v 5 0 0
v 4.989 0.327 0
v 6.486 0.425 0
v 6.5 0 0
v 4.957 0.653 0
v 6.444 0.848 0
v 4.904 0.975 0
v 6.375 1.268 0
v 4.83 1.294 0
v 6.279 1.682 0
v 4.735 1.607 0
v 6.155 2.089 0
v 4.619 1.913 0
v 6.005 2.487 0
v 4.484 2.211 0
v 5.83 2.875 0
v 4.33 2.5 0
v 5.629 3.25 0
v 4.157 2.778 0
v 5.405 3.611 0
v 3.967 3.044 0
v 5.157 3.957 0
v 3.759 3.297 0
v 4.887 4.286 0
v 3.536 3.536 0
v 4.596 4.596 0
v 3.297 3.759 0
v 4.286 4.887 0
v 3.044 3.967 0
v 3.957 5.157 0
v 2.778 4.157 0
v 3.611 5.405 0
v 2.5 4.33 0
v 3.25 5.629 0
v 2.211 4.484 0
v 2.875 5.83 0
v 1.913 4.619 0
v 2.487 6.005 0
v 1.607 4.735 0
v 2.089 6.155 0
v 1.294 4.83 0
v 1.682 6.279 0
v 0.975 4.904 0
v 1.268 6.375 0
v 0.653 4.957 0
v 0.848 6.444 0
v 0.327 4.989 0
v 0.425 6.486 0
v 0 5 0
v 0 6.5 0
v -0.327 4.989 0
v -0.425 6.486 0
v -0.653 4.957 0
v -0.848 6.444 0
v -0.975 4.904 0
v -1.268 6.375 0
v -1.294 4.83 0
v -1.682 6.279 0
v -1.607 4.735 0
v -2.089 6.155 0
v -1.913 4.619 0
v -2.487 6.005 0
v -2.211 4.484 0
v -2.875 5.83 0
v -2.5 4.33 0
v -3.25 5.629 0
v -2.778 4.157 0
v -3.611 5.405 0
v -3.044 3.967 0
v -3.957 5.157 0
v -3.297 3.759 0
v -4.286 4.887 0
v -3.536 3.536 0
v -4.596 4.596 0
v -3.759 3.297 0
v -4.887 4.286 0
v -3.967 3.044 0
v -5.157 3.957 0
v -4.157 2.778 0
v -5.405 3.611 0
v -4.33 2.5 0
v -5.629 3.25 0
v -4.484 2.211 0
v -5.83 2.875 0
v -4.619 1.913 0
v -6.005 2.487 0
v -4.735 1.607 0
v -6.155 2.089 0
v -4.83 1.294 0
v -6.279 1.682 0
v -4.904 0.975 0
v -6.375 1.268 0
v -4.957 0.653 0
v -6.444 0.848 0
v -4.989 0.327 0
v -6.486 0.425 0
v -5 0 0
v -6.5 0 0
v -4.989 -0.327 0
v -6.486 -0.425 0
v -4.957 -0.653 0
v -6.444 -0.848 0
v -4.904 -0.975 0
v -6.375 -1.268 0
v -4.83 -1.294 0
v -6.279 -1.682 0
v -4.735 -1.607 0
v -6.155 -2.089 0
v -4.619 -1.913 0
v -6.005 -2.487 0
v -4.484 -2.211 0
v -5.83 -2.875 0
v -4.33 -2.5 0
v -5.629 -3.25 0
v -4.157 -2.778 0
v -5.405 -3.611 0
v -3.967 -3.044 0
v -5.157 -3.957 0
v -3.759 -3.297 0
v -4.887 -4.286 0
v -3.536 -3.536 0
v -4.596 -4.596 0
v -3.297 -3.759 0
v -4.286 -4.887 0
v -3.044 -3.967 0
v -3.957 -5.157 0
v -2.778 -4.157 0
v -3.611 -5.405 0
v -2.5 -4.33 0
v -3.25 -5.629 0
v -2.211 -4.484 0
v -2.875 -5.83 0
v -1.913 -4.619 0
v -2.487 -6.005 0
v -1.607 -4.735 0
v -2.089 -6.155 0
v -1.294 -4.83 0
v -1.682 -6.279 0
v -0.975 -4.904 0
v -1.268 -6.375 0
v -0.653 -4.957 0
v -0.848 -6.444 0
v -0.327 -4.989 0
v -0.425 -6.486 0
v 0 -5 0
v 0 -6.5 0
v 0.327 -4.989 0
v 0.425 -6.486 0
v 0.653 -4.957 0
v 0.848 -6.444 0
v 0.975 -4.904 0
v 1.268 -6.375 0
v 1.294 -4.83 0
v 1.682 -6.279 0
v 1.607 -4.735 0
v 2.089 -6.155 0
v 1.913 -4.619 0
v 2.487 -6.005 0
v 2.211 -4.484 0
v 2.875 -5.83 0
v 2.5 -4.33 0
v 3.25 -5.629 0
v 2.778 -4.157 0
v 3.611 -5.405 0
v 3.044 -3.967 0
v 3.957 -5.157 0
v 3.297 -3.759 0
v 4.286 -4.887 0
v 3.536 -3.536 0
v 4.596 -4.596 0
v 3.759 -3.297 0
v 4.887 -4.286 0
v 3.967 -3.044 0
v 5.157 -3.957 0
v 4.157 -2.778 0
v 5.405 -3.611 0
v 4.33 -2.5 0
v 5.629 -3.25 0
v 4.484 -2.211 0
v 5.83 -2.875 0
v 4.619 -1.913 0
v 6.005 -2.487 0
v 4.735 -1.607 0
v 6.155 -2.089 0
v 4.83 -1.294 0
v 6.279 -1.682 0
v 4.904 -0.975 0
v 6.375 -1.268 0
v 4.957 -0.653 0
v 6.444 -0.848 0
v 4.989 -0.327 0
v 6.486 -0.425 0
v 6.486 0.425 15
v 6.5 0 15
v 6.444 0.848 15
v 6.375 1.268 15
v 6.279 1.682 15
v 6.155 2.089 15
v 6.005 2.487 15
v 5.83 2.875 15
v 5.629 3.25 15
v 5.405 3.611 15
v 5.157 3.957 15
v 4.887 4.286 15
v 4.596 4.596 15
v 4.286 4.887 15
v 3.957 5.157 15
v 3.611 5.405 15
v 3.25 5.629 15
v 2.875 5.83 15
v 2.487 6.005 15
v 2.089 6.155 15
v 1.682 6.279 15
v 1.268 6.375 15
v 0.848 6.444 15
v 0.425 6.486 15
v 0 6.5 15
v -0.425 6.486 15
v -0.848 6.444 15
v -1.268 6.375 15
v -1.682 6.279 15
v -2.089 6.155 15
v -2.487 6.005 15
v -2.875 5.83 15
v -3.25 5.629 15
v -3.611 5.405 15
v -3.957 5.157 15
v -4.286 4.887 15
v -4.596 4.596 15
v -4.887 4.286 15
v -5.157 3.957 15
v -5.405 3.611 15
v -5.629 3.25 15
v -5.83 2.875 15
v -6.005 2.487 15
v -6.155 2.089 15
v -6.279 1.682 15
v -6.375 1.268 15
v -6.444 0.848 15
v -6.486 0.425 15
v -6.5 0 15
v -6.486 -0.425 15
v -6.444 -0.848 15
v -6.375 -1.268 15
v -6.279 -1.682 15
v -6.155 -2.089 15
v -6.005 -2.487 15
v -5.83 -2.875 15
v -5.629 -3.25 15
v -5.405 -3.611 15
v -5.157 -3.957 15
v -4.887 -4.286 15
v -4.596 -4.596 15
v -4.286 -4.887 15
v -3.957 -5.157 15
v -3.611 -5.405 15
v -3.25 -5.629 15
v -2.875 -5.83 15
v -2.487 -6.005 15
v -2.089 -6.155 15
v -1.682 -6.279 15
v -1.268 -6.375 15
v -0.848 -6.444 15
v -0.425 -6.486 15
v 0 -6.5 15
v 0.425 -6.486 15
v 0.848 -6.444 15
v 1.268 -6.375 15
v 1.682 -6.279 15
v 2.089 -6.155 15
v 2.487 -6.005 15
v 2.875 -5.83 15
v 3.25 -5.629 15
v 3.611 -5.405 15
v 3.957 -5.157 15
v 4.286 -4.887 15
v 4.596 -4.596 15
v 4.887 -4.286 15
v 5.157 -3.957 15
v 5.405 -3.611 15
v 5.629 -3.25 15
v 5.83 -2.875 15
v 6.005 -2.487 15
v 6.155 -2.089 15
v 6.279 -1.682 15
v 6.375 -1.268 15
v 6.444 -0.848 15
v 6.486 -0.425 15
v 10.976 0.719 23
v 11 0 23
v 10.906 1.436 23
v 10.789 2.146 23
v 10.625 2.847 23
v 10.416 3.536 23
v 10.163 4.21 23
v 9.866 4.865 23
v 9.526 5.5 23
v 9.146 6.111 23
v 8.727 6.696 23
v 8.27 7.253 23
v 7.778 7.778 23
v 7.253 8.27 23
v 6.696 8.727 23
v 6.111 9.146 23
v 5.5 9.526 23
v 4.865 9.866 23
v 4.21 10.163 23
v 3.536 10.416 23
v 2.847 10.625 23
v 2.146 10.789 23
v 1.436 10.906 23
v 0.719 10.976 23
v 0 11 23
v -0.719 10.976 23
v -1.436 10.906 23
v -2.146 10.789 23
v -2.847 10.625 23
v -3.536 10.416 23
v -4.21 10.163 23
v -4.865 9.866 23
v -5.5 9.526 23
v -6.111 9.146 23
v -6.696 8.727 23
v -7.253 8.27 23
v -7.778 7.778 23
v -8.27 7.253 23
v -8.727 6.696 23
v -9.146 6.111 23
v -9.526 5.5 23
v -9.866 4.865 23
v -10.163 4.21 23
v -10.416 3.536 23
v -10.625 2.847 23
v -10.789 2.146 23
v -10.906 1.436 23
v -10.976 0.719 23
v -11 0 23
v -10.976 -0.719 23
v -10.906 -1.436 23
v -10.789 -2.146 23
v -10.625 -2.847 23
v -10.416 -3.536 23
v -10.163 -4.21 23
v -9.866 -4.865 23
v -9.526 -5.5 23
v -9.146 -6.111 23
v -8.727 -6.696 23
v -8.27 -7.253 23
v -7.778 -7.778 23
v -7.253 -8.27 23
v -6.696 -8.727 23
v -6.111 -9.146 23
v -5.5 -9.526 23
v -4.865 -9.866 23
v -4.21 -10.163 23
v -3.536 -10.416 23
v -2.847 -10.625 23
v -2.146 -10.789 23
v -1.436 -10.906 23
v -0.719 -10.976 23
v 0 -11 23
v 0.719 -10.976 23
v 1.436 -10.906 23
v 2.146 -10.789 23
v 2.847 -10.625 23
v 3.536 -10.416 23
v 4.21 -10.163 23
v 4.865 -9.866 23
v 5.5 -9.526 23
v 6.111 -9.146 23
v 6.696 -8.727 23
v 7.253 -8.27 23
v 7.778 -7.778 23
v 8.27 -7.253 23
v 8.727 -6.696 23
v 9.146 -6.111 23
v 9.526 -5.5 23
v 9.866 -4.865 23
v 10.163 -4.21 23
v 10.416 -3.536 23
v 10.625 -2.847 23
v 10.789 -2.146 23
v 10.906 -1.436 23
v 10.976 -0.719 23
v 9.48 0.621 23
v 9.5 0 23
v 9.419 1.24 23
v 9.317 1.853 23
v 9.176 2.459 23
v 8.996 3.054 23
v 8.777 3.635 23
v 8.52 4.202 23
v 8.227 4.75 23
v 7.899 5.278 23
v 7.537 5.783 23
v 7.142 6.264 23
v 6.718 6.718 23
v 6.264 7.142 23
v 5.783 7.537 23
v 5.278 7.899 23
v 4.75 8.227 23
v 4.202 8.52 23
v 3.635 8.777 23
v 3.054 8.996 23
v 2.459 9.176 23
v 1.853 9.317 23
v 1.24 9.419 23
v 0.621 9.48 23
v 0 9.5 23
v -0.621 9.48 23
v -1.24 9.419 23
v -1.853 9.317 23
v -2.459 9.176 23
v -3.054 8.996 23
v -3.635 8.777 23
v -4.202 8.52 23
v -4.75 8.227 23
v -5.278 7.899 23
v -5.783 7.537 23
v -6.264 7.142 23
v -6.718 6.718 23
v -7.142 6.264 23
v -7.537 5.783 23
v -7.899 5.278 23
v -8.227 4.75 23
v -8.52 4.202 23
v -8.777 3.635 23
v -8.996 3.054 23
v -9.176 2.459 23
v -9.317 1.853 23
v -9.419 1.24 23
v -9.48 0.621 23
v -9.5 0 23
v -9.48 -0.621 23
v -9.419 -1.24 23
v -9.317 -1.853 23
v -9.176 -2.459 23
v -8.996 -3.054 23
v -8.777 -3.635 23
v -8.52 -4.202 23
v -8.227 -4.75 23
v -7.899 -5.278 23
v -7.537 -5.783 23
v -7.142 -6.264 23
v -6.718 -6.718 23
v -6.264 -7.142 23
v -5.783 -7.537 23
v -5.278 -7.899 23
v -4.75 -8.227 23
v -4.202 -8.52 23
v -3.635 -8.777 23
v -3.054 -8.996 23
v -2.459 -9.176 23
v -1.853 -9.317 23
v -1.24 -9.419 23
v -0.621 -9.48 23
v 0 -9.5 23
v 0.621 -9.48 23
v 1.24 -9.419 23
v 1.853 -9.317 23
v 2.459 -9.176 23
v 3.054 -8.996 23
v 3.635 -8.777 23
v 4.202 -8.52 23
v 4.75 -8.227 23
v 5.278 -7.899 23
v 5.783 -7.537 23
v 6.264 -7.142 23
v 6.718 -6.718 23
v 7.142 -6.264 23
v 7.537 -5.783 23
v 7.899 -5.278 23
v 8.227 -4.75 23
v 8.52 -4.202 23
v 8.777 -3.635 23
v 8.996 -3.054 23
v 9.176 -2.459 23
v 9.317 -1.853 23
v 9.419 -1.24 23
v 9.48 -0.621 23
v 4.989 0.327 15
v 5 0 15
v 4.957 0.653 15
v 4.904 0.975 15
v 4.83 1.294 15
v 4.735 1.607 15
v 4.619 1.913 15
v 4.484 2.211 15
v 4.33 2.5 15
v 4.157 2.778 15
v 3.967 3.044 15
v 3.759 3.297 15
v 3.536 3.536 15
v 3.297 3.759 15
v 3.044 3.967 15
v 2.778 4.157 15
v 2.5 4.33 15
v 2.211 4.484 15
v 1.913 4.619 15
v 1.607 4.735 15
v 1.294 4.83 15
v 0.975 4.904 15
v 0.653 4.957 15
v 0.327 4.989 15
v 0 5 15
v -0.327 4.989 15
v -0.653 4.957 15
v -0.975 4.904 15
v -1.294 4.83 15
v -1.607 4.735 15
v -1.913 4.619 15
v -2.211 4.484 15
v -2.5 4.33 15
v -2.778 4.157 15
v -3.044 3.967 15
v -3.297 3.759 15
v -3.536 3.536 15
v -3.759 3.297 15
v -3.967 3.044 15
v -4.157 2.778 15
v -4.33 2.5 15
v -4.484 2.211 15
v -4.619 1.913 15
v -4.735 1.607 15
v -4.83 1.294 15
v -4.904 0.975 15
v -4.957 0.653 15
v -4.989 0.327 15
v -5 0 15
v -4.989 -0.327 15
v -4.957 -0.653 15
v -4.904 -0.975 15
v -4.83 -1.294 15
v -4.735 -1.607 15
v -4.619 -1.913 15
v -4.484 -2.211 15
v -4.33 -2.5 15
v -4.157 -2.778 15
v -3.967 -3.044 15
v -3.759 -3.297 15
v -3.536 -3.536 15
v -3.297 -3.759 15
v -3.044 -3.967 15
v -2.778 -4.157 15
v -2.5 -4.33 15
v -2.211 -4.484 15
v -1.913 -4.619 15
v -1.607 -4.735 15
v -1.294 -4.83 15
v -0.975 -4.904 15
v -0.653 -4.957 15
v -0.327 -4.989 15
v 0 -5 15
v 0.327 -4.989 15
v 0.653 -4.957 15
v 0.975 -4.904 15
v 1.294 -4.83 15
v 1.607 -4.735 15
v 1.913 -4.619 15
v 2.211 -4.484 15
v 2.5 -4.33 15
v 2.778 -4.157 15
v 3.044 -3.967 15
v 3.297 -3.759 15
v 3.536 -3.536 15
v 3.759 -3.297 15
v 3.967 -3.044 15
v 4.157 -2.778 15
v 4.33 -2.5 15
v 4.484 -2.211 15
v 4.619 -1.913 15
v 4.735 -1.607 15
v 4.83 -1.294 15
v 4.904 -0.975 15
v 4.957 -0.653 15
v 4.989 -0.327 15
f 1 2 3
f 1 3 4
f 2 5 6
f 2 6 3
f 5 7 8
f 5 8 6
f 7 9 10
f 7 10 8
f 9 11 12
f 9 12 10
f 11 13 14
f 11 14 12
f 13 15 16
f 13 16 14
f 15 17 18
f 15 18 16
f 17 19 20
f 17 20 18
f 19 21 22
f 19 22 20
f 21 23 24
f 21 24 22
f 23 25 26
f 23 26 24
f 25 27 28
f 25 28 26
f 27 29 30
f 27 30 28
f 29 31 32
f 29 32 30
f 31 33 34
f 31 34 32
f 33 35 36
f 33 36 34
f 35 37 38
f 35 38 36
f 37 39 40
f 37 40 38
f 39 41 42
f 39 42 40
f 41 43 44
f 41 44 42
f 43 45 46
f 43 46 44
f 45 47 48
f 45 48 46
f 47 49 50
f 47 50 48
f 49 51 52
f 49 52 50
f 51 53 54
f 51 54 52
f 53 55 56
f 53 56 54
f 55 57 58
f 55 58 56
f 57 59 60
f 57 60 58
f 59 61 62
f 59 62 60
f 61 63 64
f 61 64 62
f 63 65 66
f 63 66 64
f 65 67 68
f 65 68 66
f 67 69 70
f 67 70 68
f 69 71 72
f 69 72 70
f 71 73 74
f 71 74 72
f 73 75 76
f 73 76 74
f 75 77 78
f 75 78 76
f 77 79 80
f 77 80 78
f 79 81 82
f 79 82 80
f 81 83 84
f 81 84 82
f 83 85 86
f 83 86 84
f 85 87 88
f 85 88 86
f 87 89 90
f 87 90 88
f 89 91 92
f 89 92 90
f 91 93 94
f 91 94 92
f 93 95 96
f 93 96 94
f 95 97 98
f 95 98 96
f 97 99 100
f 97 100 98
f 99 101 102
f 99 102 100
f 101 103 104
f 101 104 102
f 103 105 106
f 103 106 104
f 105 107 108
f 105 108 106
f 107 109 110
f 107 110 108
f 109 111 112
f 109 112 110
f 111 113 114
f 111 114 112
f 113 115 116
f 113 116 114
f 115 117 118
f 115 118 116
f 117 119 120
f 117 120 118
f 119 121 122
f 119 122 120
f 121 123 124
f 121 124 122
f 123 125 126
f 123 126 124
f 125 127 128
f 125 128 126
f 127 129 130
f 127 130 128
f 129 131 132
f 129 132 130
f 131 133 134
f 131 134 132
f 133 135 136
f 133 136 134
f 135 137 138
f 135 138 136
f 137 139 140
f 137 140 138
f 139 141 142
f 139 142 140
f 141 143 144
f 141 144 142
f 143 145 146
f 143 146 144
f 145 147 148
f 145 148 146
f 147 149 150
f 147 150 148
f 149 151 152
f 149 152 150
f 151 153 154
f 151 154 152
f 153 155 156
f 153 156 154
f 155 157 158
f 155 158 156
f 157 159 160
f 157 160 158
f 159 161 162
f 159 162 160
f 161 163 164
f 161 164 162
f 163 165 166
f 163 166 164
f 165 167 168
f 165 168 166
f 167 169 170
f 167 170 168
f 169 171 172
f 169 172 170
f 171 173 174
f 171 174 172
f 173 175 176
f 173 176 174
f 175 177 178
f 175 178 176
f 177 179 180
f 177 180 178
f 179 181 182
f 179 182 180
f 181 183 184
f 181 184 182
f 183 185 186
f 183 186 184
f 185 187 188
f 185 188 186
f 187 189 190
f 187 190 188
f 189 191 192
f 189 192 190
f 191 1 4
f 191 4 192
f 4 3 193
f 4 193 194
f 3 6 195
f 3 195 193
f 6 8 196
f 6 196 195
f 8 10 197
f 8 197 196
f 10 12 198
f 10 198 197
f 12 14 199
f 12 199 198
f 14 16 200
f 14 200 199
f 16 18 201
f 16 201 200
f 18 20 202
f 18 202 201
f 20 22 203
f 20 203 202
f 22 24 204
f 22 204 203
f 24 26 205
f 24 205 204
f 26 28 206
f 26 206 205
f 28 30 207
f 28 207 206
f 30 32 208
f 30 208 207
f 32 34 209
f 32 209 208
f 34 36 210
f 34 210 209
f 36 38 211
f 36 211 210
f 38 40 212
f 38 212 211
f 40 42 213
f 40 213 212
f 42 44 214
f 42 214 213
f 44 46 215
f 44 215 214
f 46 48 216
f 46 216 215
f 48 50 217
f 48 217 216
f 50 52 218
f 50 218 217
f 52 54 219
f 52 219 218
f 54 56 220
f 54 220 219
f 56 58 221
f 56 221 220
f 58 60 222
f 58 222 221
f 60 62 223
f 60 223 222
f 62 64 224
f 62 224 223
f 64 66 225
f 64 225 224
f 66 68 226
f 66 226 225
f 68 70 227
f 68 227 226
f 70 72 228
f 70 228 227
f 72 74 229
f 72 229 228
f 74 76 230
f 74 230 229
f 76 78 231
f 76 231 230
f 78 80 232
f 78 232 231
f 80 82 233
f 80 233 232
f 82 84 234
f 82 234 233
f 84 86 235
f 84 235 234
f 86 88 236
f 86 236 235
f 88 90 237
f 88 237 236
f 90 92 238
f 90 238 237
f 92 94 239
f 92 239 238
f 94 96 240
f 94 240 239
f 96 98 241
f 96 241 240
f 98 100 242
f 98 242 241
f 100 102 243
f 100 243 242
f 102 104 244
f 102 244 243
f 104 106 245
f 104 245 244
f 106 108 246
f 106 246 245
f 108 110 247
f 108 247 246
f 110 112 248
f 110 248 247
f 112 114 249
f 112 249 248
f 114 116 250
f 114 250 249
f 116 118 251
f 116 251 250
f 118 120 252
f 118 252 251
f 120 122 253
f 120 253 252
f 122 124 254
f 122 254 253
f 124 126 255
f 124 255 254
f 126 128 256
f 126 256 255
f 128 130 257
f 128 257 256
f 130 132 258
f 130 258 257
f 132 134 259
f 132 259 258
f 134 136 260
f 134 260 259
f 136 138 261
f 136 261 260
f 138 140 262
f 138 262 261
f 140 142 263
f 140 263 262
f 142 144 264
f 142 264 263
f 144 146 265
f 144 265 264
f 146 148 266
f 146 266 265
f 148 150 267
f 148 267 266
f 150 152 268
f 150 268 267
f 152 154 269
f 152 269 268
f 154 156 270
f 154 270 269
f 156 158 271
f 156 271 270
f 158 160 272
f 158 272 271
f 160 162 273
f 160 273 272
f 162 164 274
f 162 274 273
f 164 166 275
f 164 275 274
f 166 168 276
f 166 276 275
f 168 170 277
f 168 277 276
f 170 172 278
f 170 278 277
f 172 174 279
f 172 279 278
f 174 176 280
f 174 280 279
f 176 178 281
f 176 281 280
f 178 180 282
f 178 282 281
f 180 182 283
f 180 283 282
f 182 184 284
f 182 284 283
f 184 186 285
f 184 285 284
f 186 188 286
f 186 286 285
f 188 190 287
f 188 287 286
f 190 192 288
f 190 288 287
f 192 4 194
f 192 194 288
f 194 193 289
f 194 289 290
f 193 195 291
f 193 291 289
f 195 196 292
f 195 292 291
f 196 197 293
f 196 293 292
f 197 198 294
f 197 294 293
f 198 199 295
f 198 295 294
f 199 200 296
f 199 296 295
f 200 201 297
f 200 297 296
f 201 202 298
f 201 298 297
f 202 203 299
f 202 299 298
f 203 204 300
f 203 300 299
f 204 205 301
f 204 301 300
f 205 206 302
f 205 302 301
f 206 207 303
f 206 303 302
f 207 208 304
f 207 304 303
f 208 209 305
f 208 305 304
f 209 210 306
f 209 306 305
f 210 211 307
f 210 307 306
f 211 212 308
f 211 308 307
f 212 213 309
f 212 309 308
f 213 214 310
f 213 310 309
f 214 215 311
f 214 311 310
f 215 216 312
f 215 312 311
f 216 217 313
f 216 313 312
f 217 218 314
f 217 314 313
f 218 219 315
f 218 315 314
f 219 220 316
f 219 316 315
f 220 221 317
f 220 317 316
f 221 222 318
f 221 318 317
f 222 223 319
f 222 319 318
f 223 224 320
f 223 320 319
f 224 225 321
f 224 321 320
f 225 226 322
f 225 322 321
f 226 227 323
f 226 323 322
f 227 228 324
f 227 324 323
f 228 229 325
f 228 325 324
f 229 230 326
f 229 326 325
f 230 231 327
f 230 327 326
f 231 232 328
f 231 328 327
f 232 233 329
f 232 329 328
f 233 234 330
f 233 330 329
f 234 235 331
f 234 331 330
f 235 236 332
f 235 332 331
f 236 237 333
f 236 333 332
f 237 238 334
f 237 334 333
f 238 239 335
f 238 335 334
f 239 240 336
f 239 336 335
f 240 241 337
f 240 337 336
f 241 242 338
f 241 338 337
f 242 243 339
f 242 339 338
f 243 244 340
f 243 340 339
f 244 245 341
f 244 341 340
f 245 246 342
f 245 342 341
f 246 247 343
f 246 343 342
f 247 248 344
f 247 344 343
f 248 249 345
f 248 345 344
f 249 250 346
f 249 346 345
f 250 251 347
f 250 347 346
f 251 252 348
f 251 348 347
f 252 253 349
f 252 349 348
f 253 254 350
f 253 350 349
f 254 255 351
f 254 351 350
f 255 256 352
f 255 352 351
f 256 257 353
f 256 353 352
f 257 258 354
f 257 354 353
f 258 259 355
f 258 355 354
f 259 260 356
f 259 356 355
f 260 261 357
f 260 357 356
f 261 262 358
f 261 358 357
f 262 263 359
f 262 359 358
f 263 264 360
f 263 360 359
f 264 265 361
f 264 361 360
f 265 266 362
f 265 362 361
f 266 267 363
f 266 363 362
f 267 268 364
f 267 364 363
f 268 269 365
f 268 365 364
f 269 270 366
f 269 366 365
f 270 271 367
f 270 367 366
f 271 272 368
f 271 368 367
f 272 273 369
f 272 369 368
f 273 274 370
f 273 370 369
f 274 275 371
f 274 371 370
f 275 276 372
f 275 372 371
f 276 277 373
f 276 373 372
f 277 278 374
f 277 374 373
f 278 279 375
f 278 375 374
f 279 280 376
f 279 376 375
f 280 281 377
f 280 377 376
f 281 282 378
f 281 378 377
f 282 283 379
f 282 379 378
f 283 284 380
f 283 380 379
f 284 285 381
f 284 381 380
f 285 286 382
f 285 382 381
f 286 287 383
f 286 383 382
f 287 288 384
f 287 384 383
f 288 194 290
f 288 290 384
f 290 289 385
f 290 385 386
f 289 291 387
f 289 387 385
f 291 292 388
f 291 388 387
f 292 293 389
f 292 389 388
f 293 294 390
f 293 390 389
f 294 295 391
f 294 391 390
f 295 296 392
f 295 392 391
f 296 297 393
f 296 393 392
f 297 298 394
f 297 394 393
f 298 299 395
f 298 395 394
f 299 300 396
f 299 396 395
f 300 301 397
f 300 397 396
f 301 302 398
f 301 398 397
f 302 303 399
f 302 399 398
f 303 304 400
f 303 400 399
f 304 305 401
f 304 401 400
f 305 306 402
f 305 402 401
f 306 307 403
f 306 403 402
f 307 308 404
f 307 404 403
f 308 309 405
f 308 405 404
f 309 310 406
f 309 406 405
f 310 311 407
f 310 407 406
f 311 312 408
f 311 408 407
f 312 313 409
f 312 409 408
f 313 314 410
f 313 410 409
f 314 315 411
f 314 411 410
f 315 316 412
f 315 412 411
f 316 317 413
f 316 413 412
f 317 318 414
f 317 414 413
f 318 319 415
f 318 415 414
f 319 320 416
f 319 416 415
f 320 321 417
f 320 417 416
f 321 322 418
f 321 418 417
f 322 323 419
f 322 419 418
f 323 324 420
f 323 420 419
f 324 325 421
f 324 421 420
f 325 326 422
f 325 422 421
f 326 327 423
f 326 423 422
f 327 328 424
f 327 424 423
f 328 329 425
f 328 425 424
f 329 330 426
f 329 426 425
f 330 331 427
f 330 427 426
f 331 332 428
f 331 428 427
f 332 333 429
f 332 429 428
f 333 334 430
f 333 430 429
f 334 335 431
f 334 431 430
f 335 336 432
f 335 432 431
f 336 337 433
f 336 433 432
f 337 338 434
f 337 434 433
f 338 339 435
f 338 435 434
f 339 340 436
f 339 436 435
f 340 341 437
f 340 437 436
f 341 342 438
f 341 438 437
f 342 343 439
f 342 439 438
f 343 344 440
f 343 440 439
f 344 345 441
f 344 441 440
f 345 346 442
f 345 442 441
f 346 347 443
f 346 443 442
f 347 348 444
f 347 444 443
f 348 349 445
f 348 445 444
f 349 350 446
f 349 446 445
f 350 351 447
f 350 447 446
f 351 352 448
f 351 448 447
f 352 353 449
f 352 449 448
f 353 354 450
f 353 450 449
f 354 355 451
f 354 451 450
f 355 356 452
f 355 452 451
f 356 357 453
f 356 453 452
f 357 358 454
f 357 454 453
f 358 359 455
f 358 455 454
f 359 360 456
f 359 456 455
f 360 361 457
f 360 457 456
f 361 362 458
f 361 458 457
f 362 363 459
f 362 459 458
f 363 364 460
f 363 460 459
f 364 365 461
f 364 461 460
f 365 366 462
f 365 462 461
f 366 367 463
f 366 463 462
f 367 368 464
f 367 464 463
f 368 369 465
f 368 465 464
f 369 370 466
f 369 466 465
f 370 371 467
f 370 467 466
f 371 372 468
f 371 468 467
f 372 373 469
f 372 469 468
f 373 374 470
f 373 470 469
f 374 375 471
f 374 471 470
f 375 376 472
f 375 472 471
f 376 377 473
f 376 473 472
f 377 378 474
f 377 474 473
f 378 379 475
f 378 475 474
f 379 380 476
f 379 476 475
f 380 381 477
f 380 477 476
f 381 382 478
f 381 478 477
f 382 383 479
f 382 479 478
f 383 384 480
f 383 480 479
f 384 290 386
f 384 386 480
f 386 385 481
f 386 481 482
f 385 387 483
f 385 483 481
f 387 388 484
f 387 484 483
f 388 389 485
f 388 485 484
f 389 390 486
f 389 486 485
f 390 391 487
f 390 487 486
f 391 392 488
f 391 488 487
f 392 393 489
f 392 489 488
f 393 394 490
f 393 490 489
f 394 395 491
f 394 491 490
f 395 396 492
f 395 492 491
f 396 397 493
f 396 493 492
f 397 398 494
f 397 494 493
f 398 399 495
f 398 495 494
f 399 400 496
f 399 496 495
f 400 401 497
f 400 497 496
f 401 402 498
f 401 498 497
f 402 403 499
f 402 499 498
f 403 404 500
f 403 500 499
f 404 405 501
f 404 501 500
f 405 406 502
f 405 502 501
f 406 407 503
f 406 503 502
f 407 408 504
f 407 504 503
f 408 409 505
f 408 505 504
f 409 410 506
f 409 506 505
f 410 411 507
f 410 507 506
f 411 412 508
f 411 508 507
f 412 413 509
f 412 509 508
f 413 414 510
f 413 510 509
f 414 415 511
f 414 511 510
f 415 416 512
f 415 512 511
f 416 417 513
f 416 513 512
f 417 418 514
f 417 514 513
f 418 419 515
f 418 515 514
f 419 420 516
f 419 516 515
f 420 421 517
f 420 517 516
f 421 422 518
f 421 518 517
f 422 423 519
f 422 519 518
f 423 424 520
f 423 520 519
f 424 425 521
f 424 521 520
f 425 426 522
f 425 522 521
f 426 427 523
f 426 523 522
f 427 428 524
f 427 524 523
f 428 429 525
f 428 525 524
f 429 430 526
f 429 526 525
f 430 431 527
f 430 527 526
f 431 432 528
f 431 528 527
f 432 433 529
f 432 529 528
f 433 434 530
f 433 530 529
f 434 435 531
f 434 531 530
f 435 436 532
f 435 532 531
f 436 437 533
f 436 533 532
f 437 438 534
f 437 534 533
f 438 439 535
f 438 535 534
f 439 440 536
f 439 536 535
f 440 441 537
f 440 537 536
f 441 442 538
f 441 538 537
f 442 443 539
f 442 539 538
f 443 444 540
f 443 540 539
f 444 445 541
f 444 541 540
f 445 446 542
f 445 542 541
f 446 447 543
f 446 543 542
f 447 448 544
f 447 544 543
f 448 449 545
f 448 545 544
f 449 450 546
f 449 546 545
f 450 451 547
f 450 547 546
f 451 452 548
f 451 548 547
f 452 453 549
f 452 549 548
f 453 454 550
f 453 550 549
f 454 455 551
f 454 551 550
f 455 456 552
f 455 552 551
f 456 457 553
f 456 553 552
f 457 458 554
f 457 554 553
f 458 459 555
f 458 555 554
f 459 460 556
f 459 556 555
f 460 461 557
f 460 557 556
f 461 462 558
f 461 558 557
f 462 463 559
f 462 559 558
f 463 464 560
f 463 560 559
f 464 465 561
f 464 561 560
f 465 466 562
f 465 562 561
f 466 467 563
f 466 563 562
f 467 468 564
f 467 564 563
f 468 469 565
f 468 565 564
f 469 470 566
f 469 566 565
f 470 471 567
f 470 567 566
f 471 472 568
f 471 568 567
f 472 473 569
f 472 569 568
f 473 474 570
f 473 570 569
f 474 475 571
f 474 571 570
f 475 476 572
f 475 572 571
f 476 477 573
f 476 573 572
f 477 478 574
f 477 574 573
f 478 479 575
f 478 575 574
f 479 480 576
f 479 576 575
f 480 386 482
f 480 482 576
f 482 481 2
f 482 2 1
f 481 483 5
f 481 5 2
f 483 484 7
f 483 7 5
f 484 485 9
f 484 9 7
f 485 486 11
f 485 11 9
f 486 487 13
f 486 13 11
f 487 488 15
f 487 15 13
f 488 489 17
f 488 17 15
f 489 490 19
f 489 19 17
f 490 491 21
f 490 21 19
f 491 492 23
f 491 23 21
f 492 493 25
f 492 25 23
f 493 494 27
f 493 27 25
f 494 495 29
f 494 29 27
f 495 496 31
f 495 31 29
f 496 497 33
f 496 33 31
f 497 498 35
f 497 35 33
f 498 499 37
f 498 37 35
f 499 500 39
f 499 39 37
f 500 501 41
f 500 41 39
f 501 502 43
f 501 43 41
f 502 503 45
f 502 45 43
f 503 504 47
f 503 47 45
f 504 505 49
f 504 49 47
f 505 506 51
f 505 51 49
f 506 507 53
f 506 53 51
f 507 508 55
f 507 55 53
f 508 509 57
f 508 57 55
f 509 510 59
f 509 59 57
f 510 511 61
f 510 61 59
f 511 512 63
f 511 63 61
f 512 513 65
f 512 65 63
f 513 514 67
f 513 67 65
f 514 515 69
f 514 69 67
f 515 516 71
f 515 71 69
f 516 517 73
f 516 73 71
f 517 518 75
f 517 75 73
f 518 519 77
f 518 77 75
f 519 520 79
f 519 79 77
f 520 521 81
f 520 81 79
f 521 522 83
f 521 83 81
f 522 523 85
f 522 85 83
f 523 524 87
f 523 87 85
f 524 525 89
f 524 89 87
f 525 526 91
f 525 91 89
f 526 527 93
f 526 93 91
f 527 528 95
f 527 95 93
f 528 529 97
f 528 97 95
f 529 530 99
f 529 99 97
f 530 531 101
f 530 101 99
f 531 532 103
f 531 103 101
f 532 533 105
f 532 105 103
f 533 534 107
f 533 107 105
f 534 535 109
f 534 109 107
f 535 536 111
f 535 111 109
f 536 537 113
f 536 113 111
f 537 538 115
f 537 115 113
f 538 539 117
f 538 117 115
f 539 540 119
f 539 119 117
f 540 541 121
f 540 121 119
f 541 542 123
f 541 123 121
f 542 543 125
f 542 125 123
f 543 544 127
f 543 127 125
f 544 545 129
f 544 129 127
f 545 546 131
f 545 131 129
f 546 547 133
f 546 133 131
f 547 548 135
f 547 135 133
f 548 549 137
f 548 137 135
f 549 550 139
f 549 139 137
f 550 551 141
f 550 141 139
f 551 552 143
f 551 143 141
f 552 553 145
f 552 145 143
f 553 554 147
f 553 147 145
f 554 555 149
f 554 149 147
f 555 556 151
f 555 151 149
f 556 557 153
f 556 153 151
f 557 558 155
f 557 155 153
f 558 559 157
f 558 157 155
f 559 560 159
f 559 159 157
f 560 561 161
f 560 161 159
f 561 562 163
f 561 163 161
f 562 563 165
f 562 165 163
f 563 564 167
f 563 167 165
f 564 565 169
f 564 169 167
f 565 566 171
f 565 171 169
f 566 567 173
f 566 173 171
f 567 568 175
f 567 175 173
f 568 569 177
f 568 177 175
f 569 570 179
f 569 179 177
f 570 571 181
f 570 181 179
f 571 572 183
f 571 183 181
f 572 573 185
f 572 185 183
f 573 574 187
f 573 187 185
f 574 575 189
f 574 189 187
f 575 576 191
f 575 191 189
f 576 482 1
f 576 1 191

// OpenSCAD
// Original MechIntel educational model. CC0-1.0. Units: mm.
// Not a standardized or load-rated component.
$fn=96;
// Section points: [radius, height], mm. Edit to change the profile.
section=[[5, 0], [6.5, 0], [6.5, 15], [11, 23], [9.5, 23], [5, 15]];
rotate_extrude($fn=96) polygon(points=section);
